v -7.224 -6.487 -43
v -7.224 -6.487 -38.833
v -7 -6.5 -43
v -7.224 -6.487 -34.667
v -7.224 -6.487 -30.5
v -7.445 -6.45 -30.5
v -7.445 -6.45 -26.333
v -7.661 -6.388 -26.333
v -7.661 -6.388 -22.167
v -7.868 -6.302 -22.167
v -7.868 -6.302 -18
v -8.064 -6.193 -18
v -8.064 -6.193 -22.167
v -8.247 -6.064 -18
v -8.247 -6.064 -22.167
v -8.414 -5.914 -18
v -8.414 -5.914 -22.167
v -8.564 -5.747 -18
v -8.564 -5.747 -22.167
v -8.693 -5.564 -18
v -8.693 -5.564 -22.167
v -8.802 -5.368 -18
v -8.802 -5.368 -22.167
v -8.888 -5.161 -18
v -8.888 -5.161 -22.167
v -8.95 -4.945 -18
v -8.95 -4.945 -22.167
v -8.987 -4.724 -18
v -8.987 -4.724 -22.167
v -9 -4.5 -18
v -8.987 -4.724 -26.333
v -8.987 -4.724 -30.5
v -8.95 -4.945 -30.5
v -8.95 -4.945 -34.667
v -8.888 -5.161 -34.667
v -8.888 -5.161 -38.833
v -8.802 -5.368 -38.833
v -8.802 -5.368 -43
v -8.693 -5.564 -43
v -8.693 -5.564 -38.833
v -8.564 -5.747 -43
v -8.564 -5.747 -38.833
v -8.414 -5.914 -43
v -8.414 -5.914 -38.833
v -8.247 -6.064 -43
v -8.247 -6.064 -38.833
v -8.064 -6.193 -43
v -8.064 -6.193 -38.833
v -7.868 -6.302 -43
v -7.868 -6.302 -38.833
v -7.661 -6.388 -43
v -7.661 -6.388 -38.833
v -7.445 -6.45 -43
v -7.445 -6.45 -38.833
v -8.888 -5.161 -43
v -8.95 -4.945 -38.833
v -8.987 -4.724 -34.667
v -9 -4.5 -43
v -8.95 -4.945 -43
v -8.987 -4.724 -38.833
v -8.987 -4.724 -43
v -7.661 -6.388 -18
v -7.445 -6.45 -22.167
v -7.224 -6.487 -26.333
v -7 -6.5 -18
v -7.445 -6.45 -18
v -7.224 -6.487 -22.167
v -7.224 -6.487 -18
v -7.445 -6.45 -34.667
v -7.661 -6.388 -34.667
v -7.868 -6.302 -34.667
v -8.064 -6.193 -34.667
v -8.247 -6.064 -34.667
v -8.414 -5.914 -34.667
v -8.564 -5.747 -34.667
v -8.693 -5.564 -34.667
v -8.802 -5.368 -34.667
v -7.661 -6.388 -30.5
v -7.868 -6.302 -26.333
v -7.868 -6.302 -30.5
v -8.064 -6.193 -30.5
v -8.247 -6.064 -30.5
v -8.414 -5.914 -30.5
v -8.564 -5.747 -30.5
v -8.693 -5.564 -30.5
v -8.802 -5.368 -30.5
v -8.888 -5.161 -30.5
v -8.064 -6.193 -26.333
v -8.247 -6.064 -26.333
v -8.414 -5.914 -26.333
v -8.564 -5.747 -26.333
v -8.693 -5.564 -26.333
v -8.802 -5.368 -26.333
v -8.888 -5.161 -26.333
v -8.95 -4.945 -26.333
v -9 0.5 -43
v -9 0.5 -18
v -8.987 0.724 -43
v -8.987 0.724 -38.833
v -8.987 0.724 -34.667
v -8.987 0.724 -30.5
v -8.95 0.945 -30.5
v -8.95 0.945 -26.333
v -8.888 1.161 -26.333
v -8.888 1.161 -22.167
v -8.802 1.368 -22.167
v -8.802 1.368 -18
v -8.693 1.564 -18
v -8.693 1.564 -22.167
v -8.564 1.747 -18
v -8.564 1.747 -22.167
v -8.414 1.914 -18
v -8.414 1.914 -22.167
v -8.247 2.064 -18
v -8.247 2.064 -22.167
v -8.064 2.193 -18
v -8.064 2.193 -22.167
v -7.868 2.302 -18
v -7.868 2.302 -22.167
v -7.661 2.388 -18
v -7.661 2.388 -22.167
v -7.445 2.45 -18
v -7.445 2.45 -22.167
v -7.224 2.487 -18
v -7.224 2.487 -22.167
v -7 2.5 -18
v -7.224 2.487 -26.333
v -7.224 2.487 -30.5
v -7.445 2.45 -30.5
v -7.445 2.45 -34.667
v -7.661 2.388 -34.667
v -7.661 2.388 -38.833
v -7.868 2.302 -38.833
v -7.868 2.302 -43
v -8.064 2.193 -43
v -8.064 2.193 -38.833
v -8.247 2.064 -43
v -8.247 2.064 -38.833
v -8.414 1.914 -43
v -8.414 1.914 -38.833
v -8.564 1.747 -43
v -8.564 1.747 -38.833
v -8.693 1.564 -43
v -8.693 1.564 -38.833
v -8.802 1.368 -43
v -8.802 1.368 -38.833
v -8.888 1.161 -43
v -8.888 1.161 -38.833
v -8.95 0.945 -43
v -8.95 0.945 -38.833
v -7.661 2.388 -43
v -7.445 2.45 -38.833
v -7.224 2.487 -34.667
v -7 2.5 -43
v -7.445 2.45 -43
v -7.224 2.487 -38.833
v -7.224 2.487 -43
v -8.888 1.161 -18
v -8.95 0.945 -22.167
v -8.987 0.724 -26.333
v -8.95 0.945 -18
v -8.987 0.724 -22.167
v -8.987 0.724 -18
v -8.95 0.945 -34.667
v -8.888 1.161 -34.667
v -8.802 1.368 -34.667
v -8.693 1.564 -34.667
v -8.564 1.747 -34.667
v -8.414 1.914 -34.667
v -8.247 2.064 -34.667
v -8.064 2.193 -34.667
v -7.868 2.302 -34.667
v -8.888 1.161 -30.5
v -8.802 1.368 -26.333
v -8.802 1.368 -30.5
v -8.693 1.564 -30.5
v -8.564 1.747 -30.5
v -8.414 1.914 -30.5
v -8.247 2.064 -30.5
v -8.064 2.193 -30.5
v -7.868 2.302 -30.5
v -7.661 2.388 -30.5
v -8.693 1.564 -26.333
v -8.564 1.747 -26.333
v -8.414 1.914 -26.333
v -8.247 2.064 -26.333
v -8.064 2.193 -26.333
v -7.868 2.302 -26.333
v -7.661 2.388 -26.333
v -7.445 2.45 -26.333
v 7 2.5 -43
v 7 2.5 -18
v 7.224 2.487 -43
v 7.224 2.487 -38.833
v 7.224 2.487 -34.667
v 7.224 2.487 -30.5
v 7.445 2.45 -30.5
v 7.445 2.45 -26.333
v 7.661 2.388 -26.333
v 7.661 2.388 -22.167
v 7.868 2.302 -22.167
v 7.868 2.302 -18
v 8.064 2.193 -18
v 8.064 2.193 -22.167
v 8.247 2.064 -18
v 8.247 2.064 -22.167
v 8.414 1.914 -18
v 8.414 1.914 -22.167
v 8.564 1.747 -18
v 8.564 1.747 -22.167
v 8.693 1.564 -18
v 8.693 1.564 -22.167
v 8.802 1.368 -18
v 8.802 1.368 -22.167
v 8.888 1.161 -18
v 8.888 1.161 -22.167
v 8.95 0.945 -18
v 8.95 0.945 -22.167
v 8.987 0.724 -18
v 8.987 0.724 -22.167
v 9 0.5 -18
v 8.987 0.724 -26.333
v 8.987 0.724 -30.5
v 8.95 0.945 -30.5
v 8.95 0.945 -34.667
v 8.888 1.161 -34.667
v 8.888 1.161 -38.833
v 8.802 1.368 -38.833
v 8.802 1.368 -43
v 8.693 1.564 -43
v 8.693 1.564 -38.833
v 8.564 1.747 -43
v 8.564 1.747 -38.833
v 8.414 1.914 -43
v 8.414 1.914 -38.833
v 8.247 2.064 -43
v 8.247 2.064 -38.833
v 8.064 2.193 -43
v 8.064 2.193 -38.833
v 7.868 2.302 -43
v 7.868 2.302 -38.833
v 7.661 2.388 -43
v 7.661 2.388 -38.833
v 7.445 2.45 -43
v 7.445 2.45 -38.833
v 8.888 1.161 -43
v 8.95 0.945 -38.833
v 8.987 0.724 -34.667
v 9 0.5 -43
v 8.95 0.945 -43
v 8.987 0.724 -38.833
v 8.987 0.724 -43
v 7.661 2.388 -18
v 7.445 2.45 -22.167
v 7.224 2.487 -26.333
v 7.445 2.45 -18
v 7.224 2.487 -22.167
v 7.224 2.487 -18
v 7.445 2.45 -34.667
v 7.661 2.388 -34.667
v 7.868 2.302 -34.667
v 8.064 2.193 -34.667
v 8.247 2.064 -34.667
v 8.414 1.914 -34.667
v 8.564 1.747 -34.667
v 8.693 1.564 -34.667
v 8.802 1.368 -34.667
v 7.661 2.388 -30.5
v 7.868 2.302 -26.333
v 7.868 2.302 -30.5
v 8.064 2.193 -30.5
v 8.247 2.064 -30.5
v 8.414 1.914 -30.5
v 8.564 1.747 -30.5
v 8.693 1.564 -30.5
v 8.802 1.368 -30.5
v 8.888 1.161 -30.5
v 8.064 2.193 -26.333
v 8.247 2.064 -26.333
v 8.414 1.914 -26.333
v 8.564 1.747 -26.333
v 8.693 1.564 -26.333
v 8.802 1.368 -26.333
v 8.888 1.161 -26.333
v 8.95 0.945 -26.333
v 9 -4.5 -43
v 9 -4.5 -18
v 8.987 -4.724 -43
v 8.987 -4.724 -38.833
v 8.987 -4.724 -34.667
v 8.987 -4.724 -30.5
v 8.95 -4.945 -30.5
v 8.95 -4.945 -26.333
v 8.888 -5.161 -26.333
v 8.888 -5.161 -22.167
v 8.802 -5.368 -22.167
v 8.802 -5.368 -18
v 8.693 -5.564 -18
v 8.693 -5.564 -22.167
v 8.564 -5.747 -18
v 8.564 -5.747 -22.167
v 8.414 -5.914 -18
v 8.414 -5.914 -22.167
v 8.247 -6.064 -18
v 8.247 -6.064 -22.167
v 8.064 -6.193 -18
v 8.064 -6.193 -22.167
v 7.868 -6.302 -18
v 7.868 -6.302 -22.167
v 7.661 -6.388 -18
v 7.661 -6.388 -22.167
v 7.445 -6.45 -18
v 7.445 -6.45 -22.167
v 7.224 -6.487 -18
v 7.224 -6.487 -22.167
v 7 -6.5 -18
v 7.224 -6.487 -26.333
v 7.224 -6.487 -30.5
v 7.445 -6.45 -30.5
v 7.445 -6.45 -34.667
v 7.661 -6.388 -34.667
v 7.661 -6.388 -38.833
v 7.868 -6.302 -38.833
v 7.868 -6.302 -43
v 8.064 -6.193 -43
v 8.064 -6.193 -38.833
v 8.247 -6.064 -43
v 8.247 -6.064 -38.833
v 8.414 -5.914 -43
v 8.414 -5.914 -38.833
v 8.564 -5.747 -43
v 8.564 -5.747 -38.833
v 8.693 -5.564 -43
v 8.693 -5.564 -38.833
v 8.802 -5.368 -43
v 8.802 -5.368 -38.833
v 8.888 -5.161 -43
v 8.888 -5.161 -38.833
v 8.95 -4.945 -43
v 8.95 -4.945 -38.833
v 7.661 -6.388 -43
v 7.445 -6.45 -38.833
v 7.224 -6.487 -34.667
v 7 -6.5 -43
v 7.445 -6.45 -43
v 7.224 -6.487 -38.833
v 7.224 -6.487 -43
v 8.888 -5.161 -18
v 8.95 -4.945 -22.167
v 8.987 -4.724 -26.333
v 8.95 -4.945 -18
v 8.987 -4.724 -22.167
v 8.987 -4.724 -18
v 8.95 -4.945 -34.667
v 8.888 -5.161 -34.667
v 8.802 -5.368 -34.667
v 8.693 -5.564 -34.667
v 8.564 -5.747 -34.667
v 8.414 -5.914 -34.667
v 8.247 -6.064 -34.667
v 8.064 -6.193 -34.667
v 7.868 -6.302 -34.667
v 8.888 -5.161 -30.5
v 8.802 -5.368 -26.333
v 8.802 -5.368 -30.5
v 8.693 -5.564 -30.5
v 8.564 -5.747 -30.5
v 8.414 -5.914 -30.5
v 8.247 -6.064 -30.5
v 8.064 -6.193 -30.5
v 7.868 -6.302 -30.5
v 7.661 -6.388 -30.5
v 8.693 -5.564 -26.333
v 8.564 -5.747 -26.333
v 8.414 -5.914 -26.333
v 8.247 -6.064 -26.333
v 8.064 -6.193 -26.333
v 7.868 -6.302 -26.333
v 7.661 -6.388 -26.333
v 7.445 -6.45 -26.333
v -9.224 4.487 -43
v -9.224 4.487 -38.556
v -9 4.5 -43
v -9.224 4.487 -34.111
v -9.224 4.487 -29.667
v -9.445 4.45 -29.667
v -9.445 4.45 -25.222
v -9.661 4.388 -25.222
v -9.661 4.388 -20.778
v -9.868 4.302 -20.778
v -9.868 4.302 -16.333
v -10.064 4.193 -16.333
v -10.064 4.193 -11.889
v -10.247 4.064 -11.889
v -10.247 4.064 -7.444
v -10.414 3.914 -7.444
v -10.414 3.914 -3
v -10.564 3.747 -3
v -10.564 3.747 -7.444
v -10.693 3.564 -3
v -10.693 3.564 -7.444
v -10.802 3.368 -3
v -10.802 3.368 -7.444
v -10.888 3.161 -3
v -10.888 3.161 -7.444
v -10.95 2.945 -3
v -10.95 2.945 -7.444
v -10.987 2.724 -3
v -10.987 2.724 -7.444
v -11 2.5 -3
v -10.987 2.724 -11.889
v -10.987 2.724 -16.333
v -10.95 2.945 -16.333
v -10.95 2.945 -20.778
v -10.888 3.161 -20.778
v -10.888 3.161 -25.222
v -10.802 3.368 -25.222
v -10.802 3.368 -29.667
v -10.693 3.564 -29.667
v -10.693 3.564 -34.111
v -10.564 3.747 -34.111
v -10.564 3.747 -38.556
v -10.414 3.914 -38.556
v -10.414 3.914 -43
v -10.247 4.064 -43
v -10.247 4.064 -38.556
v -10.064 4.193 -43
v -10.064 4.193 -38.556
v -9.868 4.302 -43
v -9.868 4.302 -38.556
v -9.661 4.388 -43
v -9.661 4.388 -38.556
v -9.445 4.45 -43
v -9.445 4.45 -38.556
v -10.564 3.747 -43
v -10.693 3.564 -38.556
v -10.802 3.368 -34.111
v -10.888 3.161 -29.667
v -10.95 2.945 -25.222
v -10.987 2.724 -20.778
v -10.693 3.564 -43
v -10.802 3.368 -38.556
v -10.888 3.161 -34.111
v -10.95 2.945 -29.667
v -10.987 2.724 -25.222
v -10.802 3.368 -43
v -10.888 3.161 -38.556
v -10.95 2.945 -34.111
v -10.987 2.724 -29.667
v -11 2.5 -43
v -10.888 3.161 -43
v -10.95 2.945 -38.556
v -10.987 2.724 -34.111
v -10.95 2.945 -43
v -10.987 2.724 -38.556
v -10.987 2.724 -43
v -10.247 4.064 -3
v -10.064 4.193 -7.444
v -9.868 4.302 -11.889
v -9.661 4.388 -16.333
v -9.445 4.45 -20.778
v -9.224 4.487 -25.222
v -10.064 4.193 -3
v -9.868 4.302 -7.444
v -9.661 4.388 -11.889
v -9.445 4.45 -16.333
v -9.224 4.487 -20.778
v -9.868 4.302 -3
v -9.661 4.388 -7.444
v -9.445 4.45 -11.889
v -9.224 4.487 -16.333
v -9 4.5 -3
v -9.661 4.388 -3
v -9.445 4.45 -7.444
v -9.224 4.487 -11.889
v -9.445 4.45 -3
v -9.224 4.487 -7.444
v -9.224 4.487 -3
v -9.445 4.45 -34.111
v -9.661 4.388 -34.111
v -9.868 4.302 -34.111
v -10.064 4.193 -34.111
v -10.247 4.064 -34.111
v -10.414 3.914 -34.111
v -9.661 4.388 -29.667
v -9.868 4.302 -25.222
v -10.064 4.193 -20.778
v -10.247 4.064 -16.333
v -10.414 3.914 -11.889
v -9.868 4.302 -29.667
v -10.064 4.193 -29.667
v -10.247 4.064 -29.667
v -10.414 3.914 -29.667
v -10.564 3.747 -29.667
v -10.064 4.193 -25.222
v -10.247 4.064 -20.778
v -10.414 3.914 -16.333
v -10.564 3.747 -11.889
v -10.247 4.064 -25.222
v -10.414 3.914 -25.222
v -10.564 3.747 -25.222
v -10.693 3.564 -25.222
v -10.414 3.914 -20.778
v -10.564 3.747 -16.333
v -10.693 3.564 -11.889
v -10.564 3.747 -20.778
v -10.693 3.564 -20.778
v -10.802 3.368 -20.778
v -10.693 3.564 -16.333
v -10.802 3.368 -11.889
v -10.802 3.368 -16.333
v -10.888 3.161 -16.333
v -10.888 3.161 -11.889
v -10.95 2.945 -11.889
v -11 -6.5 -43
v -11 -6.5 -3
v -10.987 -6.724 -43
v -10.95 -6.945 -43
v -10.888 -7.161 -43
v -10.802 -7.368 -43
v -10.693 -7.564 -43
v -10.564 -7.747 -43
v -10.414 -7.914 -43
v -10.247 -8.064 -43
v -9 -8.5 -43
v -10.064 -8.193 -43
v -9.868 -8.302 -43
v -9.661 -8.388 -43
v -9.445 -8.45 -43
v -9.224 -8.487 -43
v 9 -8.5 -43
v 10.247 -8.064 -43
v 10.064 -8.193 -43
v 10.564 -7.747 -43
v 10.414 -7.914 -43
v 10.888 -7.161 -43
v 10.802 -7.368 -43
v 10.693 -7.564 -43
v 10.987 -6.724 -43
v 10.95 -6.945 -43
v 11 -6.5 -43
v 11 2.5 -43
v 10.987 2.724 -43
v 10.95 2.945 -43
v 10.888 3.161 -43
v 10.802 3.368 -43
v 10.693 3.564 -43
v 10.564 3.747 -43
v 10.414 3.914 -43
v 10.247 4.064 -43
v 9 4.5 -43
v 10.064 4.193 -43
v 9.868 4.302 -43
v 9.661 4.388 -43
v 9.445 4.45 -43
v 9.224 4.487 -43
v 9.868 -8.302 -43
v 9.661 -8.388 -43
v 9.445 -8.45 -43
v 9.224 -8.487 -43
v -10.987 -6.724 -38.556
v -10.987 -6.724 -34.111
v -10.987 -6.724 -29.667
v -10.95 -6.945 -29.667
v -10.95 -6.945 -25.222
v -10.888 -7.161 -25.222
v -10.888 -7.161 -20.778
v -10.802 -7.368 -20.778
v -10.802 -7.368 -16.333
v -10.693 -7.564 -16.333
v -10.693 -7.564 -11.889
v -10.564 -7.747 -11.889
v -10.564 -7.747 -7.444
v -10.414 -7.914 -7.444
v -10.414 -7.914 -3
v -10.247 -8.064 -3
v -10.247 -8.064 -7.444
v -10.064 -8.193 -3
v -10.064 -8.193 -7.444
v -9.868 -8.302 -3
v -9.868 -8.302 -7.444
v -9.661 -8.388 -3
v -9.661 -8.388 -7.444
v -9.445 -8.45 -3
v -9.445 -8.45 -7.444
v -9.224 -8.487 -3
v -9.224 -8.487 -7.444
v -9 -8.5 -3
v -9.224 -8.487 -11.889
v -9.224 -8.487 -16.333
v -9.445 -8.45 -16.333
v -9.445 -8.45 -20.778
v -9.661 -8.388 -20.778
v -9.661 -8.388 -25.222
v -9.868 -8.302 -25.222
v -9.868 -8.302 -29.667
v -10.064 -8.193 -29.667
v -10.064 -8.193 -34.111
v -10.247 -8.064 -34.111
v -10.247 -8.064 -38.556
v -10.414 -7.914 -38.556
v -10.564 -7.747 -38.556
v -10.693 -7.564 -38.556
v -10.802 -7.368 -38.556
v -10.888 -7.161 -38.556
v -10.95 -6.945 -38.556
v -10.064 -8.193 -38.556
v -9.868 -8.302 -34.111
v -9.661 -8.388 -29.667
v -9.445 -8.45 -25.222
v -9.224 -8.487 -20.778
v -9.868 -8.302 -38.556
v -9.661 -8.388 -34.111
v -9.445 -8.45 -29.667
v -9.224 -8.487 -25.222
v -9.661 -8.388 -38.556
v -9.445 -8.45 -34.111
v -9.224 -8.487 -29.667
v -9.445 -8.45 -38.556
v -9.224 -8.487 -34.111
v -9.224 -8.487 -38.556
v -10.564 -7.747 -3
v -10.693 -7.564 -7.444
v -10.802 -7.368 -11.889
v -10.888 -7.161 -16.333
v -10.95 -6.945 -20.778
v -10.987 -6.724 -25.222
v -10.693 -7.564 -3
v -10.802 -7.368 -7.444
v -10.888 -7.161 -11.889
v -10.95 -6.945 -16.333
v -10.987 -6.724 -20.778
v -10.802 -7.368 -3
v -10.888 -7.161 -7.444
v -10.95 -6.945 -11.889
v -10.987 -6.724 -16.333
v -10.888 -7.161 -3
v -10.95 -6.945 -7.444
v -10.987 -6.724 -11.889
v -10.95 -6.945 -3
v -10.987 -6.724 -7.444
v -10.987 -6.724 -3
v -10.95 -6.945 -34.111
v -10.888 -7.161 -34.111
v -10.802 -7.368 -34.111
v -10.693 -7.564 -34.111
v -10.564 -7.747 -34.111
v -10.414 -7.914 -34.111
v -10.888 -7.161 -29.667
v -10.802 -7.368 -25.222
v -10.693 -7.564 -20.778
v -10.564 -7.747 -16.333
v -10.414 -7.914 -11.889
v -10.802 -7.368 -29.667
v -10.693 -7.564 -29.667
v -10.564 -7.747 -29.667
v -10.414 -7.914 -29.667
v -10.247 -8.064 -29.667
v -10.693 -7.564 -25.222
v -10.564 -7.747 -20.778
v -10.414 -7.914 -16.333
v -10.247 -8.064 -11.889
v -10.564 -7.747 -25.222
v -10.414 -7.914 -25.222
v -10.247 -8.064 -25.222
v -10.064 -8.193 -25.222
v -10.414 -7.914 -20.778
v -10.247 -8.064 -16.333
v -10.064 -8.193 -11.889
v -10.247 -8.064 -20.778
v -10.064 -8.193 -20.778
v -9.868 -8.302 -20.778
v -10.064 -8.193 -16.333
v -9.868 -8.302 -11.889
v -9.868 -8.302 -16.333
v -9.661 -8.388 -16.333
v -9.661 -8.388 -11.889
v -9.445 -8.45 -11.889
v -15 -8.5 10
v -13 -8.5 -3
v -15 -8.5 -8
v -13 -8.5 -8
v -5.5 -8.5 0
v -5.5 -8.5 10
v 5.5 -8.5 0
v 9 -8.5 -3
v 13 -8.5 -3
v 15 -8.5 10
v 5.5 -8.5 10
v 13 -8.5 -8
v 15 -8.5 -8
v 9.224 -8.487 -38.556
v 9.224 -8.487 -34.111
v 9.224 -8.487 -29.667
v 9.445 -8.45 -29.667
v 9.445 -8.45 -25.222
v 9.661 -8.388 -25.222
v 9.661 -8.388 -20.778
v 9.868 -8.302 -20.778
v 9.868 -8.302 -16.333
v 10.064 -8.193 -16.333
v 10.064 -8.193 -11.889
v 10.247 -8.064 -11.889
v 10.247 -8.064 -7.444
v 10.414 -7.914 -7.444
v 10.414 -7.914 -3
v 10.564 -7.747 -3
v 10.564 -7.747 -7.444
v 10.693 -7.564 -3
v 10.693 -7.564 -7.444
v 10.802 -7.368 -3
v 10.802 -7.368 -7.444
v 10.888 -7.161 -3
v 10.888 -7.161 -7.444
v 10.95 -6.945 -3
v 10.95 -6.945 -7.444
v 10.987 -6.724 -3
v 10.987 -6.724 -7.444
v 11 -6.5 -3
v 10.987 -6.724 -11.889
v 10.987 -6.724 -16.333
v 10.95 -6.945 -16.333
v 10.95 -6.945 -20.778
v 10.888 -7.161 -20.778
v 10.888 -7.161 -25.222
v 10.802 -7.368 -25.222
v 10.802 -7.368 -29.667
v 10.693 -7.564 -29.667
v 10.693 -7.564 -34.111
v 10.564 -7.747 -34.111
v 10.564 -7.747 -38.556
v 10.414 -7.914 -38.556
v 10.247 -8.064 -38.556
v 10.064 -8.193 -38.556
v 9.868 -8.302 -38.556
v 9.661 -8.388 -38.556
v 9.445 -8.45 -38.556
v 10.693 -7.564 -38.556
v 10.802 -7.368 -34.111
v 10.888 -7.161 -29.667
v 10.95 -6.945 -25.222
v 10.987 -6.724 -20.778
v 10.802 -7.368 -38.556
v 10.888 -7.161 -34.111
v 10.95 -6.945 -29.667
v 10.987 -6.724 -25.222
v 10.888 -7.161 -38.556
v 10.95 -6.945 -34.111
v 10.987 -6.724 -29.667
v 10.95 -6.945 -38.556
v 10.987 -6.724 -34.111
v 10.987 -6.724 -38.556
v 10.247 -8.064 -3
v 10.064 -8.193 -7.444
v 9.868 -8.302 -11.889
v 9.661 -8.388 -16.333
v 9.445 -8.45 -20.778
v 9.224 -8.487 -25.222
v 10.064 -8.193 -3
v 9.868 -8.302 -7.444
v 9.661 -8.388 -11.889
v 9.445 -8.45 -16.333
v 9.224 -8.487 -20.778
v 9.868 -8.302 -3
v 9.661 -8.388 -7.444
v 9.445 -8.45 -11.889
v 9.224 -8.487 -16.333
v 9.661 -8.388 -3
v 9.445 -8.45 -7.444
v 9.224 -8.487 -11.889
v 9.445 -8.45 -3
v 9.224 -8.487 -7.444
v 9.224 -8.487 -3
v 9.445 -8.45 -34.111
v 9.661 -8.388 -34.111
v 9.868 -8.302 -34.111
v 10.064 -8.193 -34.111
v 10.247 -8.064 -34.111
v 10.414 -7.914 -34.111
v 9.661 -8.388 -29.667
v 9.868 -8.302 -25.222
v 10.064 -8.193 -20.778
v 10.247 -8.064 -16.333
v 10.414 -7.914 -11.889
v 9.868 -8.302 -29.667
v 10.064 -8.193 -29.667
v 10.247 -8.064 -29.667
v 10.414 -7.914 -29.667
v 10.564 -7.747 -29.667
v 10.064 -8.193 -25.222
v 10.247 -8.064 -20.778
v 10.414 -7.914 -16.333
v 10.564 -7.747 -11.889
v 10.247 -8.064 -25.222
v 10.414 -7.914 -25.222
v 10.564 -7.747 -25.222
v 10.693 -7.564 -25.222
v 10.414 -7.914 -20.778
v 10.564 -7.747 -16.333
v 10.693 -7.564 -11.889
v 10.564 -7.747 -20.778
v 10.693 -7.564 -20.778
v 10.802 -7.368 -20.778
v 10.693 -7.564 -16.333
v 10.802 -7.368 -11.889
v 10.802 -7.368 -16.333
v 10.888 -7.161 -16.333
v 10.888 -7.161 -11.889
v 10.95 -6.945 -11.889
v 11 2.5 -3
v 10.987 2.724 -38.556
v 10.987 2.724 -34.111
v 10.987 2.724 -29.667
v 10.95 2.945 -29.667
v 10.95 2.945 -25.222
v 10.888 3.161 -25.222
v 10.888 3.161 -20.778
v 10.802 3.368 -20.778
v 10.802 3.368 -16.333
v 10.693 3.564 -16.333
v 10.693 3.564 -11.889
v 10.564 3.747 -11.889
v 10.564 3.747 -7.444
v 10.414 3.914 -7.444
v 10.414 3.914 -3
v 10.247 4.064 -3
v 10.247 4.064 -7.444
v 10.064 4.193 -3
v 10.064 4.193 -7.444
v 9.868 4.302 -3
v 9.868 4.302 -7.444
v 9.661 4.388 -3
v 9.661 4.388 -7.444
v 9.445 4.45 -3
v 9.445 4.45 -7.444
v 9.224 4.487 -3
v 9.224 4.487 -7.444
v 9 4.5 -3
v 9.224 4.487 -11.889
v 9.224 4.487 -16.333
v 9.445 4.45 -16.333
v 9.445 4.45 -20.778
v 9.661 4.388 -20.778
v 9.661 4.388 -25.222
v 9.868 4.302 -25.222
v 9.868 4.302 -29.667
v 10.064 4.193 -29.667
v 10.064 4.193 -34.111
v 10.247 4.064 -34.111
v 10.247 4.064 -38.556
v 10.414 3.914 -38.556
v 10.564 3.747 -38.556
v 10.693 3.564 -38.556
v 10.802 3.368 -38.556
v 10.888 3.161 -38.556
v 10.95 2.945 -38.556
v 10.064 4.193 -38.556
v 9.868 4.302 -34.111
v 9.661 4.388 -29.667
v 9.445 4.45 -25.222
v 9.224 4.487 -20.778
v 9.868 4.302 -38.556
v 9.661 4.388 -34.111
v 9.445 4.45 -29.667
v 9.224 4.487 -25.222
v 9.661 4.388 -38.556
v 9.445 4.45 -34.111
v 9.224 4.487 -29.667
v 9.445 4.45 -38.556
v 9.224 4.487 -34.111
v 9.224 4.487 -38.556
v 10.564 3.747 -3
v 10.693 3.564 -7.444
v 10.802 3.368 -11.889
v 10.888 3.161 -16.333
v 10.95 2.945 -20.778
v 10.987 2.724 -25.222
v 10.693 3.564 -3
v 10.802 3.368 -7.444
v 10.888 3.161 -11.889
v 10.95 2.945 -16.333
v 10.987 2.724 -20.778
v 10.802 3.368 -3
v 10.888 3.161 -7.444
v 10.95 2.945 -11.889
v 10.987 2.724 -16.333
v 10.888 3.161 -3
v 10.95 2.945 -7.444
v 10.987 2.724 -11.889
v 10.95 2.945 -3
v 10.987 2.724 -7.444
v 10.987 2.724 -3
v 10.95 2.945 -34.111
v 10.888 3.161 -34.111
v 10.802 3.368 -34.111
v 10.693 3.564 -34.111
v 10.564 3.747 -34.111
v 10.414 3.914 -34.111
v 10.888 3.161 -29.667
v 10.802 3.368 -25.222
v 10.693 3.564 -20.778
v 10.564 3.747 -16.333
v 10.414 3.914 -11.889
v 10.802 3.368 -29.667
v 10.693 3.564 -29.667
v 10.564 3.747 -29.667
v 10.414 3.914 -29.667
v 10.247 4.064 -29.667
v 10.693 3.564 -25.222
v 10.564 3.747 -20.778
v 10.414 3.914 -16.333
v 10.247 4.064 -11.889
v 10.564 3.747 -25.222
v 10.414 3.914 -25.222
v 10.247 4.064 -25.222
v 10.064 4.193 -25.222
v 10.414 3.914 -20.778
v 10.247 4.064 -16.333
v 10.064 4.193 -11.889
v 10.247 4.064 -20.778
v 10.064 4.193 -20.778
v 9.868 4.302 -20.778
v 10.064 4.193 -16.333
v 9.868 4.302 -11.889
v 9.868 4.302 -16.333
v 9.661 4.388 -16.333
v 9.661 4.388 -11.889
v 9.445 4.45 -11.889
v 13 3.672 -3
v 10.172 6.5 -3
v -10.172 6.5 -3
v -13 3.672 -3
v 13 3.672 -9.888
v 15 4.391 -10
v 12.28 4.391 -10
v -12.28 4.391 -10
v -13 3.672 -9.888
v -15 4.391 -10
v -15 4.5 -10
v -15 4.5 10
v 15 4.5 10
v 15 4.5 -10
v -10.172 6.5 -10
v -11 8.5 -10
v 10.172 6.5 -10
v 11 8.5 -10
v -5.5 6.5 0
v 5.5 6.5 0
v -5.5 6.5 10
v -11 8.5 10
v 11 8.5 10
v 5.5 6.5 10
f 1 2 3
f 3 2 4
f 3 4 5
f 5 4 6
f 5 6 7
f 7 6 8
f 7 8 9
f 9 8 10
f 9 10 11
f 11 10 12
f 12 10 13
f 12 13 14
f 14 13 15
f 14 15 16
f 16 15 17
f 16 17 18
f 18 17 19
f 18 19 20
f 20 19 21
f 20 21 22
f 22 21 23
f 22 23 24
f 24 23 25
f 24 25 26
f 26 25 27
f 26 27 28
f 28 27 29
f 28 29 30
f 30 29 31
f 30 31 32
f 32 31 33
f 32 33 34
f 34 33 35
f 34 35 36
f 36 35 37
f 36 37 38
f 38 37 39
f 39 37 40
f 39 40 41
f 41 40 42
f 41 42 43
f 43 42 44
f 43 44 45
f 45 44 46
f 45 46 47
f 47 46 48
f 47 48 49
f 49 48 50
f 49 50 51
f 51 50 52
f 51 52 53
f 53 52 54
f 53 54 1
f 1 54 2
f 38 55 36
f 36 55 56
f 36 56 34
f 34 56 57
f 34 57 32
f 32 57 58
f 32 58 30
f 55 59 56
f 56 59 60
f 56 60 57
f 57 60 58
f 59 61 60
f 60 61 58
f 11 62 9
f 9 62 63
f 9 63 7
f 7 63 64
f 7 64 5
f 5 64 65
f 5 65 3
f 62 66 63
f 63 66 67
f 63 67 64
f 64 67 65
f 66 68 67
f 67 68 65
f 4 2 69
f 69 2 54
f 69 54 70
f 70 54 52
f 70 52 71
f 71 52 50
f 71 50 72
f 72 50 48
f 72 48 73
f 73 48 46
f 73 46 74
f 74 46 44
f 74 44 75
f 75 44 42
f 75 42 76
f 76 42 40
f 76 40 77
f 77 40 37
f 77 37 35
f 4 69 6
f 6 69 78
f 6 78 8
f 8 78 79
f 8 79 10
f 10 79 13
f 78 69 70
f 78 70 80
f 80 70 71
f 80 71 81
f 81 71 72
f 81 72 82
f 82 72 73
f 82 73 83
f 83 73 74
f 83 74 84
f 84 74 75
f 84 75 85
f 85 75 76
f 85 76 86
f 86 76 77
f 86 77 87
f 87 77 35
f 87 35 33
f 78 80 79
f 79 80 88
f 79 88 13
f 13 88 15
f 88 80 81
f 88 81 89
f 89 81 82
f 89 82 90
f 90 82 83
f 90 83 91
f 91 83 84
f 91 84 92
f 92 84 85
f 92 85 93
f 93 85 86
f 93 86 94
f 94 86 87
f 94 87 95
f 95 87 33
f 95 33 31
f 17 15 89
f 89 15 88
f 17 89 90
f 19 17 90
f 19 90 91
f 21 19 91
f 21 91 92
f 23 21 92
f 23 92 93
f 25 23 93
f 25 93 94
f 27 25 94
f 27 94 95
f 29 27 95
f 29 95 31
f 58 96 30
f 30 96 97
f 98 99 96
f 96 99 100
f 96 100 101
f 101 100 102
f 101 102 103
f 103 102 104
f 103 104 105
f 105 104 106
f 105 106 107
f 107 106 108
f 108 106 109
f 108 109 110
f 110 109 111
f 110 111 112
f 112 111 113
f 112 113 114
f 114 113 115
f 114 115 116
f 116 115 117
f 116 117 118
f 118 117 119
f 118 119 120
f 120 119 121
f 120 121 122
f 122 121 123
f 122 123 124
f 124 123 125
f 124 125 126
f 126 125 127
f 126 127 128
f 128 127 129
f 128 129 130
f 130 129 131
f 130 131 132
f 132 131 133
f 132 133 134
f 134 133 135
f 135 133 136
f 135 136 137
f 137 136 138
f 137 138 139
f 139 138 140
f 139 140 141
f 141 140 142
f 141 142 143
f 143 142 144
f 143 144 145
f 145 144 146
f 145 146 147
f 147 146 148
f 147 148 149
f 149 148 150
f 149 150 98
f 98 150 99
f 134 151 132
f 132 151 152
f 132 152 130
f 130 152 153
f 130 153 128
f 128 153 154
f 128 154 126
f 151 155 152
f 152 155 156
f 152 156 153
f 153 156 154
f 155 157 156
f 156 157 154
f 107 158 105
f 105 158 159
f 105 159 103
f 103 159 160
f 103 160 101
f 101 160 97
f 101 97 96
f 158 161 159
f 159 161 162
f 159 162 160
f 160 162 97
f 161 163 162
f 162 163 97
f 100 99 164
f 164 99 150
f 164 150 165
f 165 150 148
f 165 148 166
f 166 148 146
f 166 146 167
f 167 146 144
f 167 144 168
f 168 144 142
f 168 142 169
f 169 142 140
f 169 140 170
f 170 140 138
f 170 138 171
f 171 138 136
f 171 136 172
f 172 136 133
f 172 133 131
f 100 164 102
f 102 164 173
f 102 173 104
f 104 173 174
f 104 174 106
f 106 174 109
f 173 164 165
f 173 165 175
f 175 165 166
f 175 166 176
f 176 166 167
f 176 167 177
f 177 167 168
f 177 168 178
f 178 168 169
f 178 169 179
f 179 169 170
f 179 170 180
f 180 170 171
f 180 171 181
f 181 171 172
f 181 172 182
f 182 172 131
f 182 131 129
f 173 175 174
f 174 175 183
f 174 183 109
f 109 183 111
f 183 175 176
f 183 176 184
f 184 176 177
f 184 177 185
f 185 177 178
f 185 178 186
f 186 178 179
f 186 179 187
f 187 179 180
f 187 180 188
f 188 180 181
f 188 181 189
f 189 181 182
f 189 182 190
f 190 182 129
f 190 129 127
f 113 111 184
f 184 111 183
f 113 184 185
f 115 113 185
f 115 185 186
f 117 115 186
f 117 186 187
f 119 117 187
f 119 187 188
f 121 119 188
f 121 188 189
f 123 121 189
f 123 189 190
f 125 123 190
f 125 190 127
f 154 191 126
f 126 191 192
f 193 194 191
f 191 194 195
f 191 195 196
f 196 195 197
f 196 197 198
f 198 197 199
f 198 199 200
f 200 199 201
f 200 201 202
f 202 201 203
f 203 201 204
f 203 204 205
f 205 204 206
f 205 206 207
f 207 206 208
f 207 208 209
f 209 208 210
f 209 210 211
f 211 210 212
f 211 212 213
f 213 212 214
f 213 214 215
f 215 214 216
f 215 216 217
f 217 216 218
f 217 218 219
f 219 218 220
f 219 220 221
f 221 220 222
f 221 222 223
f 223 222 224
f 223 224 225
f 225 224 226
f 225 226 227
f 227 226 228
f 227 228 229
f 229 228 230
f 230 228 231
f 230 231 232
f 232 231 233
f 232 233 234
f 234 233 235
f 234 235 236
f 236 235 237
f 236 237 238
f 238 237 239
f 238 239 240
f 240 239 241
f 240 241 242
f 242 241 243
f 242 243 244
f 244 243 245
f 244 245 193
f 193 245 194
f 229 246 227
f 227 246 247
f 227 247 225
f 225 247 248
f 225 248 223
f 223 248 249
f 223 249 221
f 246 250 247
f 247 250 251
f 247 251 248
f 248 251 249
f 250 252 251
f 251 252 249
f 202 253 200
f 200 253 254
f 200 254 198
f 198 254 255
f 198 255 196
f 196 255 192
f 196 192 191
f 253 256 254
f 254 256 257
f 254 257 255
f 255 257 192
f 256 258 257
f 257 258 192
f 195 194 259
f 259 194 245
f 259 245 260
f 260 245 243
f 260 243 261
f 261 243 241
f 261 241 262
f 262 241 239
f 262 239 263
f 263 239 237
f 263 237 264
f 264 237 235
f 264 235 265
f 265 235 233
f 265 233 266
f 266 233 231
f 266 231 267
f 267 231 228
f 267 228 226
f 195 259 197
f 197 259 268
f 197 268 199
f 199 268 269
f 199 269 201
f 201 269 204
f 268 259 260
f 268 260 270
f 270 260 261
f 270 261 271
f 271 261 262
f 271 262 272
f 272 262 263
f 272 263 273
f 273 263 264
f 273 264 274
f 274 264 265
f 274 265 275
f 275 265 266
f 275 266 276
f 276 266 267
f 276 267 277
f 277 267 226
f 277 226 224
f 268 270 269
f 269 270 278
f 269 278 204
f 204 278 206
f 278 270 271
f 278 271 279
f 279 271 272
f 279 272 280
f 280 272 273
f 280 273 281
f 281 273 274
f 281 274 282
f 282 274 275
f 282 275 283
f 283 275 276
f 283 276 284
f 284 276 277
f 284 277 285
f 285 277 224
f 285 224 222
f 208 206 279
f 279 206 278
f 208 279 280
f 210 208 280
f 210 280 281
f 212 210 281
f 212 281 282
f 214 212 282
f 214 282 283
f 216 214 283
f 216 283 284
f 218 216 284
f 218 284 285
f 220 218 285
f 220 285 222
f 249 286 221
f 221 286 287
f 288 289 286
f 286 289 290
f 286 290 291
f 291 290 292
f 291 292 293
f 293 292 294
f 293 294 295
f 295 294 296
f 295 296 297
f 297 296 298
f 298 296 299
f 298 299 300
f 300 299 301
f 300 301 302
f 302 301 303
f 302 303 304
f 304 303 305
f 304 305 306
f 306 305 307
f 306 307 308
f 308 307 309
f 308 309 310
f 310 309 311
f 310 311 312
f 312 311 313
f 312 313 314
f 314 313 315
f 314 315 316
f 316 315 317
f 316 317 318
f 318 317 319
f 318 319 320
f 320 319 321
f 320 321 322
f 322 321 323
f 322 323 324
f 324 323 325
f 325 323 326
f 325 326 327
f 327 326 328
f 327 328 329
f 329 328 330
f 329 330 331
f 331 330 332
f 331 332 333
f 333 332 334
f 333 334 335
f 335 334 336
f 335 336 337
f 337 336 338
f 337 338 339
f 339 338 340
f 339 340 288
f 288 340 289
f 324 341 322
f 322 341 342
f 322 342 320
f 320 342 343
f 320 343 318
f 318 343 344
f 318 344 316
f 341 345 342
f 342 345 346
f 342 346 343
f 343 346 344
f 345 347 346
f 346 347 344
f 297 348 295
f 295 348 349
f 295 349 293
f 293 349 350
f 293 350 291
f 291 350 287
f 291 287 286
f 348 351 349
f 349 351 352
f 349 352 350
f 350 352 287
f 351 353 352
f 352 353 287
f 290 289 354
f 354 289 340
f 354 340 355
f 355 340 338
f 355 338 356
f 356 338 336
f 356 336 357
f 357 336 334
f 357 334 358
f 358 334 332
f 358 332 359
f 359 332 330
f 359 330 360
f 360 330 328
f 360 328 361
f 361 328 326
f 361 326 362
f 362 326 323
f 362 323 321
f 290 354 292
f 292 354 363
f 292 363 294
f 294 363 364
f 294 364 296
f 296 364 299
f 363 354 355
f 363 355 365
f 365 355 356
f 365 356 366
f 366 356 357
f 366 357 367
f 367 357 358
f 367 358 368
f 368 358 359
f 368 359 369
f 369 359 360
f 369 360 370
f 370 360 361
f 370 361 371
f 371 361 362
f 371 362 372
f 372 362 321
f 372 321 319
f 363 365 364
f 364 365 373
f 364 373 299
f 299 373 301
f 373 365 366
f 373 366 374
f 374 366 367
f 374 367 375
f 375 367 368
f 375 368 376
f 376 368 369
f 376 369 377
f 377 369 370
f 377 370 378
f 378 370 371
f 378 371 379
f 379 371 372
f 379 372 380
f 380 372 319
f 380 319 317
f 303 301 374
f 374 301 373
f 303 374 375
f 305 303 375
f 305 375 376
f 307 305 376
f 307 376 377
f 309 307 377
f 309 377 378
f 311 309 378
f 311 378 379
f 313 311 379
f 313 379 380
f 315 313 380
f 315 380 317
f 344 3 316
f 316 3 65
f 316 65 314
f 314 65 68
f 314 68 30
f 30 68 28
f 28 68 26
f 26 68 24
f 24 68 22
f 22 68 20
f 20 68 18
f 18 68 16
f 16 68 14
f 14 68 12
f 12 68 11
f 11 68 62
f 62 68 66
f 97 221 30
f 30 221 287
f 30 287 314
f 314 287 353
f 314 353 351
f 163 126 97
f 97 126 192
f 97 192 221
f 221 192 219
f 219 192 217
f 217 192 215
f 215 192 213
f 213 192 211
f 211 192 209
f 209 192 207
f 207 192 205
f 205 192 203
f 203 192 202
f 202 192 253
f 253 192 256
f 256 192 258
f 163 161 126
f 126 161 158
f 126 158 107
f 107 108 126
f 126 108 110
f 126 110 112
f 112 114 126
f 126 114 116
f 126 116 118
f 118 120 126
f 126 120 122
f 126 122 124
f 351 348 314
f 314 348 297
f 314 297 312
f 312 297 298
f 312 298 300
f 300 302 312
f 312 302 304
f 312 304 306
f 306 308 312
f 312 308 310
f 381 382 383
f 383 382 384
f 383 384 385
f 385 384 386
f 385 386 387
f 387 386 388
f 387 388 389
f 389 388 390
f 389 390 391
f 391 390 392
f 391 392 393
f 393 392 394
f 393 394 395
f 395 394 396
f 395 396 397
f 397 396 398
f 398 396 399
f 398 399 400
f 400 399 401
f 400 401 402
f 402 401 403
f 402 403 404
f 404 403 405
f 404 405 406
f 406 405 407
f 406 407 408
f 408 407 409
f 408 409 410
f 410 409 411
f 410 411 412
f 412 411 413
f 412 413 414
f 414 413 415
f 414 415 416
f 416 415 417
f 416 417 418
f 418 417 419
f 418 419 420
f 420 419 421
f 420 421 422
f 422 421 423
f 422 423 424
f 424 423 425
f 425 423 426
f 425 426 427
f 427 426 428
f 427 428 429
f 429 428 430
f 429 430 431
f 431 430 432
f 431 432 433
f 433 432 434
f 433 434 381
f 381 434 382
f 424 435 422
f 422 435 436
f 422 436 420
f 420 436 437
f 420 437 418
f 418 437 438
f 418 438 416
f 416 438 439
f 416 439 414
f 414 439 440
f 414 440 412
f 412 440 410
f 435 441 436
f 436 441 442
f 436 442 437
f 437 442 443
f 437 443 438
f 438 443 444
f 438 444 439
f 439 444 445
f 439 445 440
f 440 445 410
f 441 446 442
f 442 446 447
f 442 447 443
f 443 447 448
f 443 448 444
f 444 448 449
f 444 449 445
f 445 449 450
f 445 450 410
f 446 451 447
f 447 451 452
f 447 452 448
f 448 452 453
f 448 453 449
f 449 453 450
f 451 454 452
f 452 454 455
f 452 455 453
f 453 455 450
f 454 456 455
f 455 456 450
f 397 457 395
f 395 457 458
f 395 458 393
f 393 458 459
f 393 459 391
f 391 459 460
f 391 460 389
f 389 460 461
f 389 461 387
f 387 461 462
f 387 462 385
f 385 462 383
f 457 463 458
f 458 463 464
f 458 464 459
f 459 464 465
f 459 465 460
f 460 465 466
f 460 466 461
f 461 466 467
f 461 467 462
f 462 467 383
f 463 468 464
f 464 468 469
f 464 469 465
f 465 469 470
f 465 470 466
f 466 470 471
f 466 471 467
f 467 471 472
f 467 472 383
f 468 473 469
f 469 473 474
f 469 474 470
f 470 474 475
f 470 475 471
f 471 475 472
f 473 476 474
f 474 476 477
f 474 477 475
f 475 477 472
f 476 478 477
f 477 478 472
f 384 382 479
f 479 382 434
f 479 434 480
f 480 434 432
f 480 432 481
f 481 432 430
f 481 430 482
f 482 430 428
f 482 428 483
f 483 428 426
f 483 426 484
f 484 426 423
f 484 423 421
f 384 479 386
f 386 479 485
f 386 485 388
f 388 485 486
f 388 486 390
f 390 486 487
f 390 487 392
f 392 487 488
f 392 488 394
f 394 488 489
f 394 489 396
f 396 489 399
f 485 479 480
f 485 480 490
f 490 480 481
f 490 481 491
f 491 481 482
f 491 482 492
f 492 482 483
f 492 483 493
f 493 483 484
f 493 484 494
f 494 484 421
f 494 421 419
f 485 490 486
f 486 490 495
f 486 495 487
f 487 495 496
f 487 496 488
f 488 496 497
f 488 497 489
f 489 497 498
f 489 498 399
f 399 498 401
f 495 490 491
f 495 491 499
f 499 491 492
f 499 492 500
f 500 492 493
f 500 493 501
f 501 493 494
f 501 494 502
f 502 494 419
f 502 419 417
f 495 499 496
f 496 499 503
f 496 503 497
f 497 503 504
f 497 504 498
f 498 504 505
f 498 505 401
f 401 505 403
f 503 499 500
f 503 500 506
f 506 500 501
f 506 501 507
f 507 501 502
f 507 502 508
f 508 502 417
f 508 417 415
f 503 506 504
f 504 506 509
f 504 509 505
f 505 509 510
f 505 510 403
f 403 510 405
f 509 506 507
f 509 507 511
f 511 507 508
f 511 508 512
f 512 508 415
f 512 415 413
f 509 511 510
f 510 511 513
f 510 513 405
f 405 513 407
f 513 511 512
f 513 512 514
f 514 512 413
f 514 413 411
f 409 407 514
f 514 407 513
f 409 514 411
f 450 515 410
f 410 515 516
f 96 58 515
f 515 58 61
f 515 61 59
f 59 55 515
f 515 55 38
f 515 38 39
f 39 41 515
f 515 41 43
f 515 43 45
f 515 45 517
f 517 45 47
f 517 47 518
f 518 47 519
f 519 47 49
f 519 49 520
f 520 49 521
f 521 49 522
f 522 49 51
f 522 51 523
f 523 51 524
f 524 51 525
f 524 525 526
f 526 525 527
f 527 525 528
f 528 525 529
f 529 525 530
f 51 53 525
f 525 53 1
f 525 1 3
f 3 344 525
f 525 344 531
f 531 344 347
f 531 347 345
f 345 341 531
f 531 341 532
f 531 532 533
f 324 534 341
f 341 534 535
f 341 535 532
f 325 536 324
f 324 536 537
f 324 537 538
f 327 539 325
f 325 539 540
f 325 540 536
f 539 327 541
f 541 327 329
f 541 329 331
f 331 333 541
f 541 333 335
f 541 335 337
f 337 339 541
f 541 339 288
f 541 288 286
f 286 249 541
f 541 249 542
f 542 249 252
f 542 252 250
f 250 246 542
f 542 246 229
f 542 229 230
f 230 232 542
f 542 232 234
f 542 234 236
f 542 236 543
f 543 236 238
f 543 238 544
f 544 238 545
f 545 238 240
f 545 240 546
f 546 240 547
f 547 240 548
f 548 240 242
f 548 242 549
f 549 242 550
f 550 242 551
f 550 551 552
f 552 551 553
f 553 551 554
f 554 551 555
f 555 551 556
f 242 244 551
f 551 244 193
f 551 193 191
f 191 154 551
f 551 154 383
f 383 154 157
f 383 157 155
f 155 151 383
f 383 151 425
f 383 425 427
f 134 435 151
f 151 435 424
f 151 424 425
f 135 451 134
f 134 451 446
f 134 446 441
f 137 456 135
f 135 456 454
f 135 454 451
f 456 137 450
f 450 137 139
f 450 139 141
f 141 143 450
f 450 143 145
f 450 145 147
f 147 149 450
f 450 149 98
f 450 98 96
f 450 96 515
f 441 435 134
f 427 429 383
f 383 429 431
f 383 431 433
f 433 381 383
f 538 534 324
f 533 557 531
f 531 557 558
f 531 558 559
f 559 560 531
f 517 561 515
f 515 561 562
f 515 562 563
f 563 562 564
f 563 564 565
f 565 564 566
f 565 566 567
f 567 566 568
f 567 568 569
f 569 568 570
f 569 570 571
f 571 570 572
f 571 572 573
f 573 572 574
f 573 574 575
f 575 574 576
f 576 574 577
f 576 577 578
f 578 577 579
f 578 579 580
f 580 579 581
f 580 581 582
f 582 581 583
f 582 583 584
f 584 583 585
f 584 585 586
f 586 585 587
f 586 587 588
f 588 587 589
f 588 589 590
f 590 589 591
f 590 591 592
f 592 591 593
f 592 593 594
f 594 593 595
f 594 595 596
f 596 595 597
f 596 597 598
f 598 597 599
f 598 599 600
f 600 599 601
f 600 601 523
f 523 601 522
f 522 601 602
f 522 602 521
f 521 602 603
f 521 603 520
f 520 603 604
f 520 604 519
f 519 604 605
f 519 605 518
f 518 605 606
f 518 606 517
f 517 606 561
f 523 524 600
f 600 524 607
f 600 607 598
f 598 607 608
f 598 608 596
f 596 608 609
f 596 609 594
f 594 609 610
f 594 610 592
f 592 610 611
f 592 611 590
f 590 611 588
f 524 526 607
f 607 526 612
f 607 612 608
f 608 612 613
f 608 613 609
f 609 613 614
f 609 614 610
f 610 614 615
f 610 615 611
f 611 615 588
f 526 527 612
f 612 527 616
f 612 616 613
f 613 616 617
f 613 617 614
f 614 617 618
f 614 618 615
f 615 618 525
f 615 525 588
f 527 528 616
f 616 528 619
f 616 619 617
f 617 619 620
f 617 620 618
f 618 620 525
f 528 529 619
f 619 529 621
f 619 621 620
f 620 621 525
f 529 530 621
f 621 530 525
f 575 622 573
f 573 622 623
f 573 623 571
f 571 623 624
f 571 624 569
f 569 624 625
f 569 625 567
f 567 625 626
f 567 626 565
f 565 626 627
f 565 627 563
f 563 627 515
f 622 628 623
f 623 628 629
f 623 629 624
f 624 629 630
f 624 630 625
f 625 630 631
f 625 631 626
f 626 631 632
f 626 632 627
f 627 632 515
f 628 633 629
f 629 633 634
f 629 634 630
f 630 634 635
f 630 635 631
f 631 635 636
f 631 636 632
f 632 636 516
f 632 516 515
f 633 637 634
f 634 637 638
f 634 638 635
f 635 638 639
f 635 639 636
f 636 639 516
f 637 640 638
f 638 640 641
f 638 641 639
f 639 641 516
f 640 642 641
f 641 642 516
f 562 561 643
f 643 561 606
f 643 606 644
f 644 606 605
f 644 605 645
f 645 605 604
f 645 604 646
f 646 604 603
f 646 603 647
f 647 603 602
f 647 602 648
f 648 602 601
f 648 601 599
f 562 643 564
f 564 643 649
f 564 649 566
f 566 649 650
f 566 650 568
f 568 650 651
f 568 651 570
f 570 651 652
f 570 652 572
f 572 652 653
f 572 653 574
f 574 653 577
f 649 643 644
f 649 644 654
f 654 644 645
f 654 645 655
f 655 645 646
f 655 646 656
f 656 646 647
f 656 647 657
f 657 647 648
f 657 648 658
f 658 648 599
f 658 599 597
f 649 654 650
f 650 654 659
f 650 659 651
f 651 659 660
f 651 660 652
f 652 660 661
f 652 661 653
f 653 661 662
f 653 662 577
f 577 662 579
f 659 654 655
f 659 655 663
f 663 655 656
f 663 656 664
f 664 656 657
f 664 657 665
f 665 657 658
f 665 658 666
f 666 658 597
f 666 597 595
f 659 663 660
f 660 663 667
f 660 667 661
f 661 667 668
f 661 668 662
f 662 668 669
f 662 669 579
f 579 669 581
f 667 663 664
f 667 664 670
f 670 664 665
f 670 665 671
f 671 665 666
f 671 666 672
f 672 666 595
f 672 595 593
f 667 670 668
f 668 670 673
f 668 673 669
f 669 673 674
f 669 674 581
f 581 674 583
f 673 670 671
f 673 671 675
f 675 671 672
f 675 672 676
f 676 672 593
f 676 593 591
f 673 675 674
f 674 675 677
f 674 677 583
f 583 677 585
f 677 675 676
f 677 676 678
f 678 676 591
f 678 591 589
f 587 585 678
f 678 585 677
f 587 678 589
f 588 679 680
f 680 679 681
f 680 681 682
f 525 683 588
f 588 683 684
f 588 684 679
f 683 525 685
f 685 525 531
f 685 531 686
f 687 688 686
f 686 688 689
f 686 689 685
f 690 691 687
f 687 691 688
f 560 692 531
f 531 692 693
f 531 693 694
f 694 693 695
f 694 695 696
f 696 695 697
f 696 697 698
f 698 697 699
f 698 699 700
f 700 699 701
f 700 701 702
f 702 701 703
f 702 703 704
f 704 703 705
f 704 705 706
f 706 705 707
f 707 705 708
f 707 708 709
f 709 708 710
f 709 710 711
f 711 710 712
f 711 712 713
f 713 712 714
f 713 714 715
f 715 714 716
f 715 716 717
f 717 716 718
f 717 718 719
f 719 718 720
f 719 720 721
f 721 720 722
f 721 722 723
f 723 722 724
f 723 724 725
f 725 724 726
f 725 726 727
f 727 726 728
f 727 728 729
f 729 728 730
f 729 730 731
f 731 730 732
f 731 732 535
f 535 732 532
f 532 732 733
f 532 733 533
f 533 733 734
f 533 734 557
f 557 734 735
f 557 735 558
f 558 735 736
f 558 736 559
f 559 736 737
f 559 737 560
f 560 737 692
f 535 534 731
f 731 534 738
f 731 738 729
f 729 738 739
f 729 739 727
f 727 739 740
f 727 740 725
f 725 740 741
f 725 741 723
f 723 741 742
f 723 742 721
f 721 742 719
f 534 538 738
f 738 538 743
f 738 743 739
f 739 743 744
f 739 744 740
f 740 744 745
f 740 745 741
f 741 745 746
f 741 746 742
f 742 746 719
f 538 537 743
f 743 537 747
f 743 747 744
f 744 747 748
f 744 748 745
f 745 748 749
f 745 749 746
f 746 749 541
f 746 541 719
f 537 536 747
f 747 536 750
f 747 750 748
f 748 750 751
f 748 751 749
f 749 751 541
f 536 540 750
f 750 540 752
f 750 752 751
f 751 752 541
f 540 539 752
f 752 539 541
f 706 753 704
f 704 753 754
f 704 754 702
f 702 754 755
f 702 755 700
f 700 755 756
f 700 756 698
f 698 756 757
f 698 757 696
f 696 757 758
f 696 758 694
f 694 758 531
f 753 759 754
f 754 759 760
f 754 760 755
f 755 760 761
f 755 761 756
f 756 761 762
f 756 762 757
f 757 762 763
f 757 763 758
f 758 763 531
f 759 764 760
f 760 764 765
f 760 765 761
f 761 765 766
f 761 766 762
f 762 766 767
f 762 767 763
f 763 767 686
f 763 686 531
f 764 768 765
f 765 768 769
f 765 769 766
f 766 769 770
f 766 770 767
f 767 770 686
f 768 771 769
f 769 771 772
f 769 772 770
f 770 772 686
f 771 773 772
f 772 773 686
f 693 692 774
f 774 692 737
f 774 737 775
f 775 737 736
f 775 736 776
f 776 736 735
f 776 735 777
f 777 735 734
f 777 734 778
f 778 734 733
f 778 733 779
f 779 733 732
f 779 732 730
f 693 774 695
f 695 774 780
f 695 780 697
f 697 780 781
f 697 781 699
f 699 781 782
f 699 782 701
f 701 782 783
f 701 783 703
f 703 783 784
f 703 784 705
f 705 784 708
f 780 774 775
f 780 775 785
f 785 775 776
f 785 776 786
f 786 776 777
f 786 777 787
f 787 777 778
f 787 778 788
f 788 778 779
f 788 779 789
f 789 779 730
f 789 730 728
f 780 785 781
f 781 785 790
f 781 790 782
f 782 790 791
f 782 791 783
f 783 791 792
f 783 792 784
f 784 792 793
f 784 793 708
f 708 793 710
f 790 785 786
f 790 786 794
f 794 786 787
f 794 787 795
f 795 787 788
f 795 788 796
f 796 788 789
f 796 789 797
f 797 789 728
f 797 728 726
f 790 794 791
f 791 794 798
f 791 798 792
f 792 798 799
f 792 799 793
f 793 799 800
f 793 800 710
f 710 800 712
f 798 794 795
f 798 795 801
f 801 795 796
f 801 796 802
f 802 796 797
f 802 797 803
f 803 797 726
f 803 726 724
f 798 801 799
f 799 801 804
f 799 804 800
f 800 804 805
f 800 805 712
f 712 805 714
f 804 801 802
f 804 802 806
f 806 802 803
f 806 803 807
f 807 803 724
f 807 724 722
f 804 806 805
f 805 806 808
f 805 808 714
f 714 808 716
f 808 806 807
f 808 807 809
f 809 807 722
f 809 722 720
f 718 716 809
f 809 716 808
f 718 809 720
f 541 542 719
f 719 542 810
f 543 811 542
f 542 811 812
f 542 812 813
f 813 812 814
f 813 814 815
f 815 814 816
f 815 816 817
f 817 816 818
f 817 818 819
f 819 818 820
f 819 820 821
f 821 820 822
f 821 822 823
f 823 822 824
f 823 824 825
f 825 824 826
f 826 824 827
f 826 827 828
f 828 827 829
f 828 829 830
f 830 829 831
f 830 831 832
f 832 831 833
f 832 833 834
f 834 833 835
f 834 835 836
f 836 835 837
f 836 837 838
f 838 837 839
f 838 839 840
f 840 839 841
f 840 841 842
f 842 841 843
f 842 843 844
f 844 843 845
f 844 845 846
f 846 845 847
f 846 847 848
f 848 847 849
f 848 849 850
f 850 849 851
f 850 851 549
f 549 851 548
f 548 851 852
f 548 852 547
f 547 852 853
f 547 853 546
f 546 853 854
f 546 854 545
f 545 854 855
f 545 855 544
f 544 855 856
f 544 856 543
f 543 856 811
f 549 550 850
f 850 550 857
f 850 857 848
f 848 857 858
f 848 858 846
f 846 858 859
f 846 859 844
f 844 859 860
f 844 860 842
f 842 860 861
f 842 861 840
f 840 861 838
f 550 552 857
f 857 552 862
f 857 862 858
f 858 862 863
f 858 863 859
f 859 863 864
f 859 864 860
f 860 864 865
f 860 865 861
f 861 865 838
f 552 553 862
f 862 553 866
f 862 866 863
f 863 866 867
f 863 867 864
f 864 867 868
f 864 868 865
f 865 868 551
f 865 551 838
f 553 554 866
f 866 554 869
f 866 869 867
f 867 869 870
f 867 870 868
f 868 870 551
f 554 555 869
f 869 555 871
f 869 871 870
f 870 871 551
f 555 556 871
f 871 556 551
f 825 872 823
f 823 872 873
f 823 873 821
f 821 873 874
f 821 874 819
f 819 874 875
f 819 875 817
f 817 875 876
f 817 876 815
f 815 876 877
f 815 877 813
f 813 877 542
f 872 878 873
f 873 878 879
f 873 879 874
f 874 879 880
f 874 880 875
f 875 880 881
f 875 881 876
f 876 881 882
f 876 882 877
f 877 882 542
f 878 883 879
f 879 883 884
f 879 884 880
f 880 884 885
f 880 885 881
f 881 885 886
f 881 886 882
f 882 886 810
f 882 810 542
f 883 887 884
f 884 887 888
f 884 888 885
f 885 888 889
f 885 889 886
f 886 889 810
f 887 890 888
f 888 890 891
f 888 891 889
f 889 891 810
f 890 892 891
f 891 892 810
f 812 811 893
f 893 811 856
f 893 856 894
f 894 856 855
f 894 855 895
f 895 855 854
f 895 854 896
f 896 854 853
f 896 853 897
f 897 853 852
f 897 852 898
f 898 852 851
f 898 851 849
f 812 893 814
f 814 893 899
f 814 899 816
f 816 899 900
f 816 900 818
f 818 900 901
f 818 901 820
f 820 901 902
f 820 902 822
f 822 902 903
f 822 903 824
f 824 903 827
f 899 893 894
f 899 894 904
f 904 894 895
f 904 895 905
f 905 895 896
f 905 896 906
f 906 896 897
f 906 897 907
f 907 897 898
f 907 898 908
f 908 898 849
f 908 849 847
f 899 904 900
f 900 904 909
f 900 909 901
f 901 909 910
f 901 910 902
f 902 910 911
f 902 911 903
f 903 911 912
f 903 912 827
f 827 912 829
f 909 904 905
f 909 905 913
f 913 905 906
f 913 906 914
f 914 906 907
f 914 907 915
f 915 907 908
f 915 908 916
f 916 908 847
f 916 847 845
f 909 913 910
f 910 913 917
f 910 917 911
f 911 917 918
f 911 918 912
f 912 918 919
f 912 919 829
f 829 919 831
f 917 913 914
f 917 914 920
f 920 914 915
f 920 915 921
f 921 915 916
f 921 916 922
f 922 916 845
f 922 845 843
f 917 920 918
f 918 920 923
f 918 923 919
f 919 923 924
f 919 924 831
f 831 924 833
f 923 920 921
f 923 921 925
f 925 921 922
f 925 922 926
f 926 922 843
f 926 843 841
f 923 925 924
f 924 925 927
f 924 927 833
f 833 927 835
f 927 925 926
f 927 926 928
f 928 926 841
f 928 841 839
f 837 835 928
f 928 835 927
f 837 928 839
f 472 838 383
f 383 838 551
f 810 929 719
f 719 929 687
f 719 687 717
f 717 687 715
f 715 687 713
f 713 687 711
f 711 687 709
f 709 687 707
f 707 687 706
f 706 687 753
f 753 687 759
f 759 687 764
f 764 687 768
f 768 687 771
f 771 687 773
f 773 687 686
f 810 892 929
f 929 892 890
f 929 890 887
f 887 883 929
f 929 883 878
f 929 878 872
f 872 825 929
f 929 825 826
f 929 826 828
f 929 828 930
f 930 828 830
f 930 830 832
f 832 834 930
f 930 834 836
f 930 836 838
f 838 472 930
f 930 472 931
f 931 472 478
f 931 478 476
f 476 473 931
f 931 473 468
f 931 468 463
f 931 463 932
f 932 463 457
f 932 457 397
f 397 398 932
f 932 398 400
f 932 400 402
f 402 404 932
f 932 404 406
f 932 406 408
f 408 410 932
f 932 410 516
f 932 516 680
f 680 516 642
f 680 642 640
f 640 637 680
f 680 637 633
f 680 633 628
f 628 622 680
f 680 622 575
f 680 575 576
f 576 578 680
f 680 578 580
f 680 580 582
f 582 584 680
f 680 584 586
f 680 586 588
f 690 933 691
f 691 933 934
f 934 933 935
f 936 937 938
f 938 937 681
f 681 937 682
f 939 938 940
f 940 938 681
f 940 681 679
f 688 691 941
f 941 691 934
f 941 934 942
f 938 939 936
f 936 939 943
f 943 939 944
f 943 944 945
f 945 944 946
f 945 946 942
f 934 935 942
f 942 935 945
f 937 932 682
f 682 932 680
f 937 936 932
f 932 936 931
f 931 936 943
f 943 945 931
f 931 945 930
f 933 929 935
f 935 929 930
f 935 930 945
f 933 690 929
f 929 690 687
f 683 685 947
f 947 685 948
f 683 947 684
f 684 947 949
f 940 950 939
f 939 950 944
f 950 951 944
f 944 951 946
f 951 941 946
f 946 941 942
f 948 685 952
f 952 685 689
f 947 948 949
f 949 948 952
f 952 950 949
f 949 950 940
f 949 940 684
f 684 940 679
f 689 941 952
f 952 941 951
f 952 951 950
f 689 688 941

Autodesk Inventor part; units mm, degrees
ref_plane "YZ Plane" through (0, 0, 0) normal (1, 0, 0) x (0, 1, 0)
ref_plane "XZ Plane" through (0, 0, 0) normal (0, 1, 0) x (-1, 0, 0)
ref_plane "XY Plane" through (0, 0, 0) normal (0, 0, 1) x (1, 0, 0)
sketch "Szkic1" plane through (0, 0, 0) normal (0, 0, 1) x (1, 0, 0)
  line L0 (-15, -8.5) -> (15, -8.5)
  line L1 (15, -8.5) -> (15, 4.5)
  line L2 (11, 8.5) -> (-11, 8.5)
  line L3 (-15, 4.5) -> (-15, -8.5)
  line L4 (-15, -8.5) -> (15, 8.5) construction
  line L5 (15, -8.5) -> (-15, 8.5) construction
  line L6 (-13, 6.5) -> (13, 6.5)
  line L7 (13, 6.5) -> (13, -6.5)
  line L8 (13, -6.5) -> (-13, -6.5)
  line L9 (-13, -6.5) -> (-13, 6.5)
  line L10 (-5.5, -6.5) -> (5.5, -6.5)
  line L11 (5.5, -6.5) -> (5.5, 6.5)
  line L12 (5.5, 6.5) -> (-5.5, 6.5)
  line L13 (-5.5, 6.5) -> (-5.5, -6.5)
  line L14 (-5.5, -6.5) -> (5.5, 6.5) construction
  line L15 (5.5, -6.5) -> (-5.5, 6.5) construction
  line L16 (-5.5, -6.5) -> (-5.5, -8.5)
  line L17 (5.5, -6.5) -> (5.5, -8.5)
  line L18 (-11, 8.5) -> (-15, 4.5)
  line L19 (11, 8.5) -> (15, 4.5)
  point P0 (0, 0)
  dimension "d0" = 30
  dimension "d1" = 17
  dimension "d2" = 2
  dimension "d3" = 11
  dimension "d4" = 4
  dimension "d5" = 4
  dimension "d6" = 4
  dimension "d7" = 4
extrude "Wyciągnięcie proste1" add sketch "Szkic1" along normal blind 10 contours L3 L18 L9 L8 L16 L0 | L17 L8 L7 L19 L1 L0 | L8 L9 L6 L13 | L18 L2 L19 L6 | L11 L6 L7 L8
sketch "Szkic2" plane through (0, 0, 0) normal (0, 0, -1) x (-1, 0, 0)
  line L0 (5.5, 6.5) -> (-5.5, 6.5) projected
  line L1 (5.5, -8.5) -> (5.5, 6.5) projected
  line L2 (15, -8.5) -> (5.5, -8.5) projected
  line L3 (15, 4.5) -> (15, -8.5) projected
  line L4 (11, 8.5) -> (15, 4.5) projected
  line L5 (-11, 8.5) -> (11, 8.5) projected
  line L6 (-15, 4.5) -> (-11, 8.5) projected
  line L7 (-15, -8.5) -> (-15, 4.5) projected
  line L8 (-5.5, -8.5) -> (-15, -8.5) projected
  line L9 (-5.5, 6.5) -> (-5.5, -8.5) projected
  line L10 (-5.5, -8.5) -> (5.5, -8.5)
  point P0 (0, 0)
extrude "Wyciągnięcie proste2" add sketch "Szkic2" along normal blind 10
sketch "Szkic3" plane through (0, 0, -10) normal (0, 0, -1) x (-1, 0, 0)
  line L0 (15, -8.5) -> (15, 4.5) projected
  line L1 (15, 4.5) -> (11, 8.5) projected
  line L2 (11, 8.5) -> (-11, 8.5) projected
  line L3 (-11, 8.5) -> (-15, 4.5) projected
  line L4 (-15, 4.5) -> (-15, -8.5) projected
  line L5 (-15, -8.5) -> (15, -8.5) projected
  line L6 (10.1716, 6.5) -> (13, 3.6716)
  line L7 (13, 3.6716) -> (13, -6.5)
  line L8 (13, -6.5) -> (-13, -6.5)
  line L9 (-13, -6.5) -> (-13, 3.6716)
  line L10 (-13, 3.6716) -> (-10.1716, 6.5)
  line L11 (-10.1716, 6.5) -> (10.1716, 6.5)
  line L12 (-13, -6.5) -> (-13, -8.5)
  line L13 (13, -6.5) -> (13, -8.5)
  point P0 (0, 0)
  dimension "d12" = 2
extrude "Wyciągnięcie proste3" cut sketch "Szkic3" against normal blind 7 contours L5 L12 L8 L13 | L8 L9 L10 L11 L6 L7
sketch "Szkic4" plane through (15, -8.5, 10) normal (1, 0, 0) x (0, 0, -1)
  line L0 (20, 0) -> (0, 0) projected
  line L1 (20, 0) -> (18, 0)
  line L2 (18, 0) -> (20, 12.8915)
  line L3 (20, 12.8915) -> (20, 0)
  point P0 (10, 8.5)
  dimension "d15" = 2
extrude "Wyciągnięcie proste4" cut sketch "Szkic4" against normal through all
sketch "Szkic6" plane through (0, 0, -3) normal (0, 0, -1) x (-1, 0, 0)
  line L0 (-11, 4.5) -> (11, 4.5)
  line L1 (11, 4.5) -> (11, -17.5)
  line L2 (11, -17.5) -> (-11, -17.5)
  line L3 (-11, -17.5) -> (-11, 4.5)
  line L4 (13, -8.5) -> (-13, -8.5) projected
  line L5 (-11, 4.5) -> (11, 4.5)
  line L6 (11, 4.5) -> (11, -8.5)
  line L7 (11, -8.5) -> (-11, -8.5)
  line L8 (-11, -8.5) -> (-11, 4.5)
  point P0 (0, 0)
  dimension "d18" = 22
  dimension "d19" = 22
extrude "Wyciągnięcie proste5" add sketch "Szkic6" along normal blind 40 contours L0 L1 L4 L3
fillet "Zaokrąglenie1" radius 2 4 edges at (11, 4.5, -23) (11, -8.5, -23) (-11, -8.5, -23) (-11, 4.5, -23)
sketch "Szkic7" plane through (0, 0, -43) normal (0, 0, -1) x (-1, 0, 0)
  line L0 (11, -6.5) -> (11, 2.5) projected
  arc A0 (11, 2.5) -> (9, 4.5) centre (9, 2.5) ccw projected
  line L1 (9, 4.5) -> (-9, 4.5) projected
  arc A1 (-9, 4.5) -> (-11, 2.5) centre (-9, 2.5) ccw projected
  line L2 (-11, 2.5) -> (-11, -6.5) projected
  arc A2 (-11, -6.5) -> (-9, -8.5) centre (-9, -6.5) ccw projected
  line L3 (-9, -8.5) -> (9, -8.5) projected
  arc A3 (9, -8.5) -> (11, -6.5) centre (9, -6.5) ccw projected
  line L4 (11, -6.5) -> (11, 2.5) projected
  line L5 (-7, 2.5) -> (7, 2.5)
  line L6 (9, 0.5) -> (9, -4.5)
  line L7 (7, -6.5) -> (-7, -6.5)
  line L8 (-9, -4.5) -> (-9, 0.5)
  arc A4 (-7, 2.5) -> (-9, 0.5) centre (-7, 0.5) ccw
  arc A5 (-9, -4.5) -> (-7, -6.5) centre (-7, -4.5) ccw
  arc A6 (7, -6.5) -> (9, -4.5) centre (7, -4.5) ccw
  arc A7 (9, 0.5) -> (7, 2.5) centre (7, 0.5) ccw
  point P0 (0, 0)
  dimension "d23" = 2
  dimension "d24" = 2
extrude "Wyciągnięcie proste6" cut sketch "Szkic7" against normal blind 25 contours L5 A7 L6 A6 L7 A5 L8 A4
equation "\"d5\" = d4"
equation "\"d6\" = d4"
equation "\"d7\" = d6"
properties part number "gunv1"
